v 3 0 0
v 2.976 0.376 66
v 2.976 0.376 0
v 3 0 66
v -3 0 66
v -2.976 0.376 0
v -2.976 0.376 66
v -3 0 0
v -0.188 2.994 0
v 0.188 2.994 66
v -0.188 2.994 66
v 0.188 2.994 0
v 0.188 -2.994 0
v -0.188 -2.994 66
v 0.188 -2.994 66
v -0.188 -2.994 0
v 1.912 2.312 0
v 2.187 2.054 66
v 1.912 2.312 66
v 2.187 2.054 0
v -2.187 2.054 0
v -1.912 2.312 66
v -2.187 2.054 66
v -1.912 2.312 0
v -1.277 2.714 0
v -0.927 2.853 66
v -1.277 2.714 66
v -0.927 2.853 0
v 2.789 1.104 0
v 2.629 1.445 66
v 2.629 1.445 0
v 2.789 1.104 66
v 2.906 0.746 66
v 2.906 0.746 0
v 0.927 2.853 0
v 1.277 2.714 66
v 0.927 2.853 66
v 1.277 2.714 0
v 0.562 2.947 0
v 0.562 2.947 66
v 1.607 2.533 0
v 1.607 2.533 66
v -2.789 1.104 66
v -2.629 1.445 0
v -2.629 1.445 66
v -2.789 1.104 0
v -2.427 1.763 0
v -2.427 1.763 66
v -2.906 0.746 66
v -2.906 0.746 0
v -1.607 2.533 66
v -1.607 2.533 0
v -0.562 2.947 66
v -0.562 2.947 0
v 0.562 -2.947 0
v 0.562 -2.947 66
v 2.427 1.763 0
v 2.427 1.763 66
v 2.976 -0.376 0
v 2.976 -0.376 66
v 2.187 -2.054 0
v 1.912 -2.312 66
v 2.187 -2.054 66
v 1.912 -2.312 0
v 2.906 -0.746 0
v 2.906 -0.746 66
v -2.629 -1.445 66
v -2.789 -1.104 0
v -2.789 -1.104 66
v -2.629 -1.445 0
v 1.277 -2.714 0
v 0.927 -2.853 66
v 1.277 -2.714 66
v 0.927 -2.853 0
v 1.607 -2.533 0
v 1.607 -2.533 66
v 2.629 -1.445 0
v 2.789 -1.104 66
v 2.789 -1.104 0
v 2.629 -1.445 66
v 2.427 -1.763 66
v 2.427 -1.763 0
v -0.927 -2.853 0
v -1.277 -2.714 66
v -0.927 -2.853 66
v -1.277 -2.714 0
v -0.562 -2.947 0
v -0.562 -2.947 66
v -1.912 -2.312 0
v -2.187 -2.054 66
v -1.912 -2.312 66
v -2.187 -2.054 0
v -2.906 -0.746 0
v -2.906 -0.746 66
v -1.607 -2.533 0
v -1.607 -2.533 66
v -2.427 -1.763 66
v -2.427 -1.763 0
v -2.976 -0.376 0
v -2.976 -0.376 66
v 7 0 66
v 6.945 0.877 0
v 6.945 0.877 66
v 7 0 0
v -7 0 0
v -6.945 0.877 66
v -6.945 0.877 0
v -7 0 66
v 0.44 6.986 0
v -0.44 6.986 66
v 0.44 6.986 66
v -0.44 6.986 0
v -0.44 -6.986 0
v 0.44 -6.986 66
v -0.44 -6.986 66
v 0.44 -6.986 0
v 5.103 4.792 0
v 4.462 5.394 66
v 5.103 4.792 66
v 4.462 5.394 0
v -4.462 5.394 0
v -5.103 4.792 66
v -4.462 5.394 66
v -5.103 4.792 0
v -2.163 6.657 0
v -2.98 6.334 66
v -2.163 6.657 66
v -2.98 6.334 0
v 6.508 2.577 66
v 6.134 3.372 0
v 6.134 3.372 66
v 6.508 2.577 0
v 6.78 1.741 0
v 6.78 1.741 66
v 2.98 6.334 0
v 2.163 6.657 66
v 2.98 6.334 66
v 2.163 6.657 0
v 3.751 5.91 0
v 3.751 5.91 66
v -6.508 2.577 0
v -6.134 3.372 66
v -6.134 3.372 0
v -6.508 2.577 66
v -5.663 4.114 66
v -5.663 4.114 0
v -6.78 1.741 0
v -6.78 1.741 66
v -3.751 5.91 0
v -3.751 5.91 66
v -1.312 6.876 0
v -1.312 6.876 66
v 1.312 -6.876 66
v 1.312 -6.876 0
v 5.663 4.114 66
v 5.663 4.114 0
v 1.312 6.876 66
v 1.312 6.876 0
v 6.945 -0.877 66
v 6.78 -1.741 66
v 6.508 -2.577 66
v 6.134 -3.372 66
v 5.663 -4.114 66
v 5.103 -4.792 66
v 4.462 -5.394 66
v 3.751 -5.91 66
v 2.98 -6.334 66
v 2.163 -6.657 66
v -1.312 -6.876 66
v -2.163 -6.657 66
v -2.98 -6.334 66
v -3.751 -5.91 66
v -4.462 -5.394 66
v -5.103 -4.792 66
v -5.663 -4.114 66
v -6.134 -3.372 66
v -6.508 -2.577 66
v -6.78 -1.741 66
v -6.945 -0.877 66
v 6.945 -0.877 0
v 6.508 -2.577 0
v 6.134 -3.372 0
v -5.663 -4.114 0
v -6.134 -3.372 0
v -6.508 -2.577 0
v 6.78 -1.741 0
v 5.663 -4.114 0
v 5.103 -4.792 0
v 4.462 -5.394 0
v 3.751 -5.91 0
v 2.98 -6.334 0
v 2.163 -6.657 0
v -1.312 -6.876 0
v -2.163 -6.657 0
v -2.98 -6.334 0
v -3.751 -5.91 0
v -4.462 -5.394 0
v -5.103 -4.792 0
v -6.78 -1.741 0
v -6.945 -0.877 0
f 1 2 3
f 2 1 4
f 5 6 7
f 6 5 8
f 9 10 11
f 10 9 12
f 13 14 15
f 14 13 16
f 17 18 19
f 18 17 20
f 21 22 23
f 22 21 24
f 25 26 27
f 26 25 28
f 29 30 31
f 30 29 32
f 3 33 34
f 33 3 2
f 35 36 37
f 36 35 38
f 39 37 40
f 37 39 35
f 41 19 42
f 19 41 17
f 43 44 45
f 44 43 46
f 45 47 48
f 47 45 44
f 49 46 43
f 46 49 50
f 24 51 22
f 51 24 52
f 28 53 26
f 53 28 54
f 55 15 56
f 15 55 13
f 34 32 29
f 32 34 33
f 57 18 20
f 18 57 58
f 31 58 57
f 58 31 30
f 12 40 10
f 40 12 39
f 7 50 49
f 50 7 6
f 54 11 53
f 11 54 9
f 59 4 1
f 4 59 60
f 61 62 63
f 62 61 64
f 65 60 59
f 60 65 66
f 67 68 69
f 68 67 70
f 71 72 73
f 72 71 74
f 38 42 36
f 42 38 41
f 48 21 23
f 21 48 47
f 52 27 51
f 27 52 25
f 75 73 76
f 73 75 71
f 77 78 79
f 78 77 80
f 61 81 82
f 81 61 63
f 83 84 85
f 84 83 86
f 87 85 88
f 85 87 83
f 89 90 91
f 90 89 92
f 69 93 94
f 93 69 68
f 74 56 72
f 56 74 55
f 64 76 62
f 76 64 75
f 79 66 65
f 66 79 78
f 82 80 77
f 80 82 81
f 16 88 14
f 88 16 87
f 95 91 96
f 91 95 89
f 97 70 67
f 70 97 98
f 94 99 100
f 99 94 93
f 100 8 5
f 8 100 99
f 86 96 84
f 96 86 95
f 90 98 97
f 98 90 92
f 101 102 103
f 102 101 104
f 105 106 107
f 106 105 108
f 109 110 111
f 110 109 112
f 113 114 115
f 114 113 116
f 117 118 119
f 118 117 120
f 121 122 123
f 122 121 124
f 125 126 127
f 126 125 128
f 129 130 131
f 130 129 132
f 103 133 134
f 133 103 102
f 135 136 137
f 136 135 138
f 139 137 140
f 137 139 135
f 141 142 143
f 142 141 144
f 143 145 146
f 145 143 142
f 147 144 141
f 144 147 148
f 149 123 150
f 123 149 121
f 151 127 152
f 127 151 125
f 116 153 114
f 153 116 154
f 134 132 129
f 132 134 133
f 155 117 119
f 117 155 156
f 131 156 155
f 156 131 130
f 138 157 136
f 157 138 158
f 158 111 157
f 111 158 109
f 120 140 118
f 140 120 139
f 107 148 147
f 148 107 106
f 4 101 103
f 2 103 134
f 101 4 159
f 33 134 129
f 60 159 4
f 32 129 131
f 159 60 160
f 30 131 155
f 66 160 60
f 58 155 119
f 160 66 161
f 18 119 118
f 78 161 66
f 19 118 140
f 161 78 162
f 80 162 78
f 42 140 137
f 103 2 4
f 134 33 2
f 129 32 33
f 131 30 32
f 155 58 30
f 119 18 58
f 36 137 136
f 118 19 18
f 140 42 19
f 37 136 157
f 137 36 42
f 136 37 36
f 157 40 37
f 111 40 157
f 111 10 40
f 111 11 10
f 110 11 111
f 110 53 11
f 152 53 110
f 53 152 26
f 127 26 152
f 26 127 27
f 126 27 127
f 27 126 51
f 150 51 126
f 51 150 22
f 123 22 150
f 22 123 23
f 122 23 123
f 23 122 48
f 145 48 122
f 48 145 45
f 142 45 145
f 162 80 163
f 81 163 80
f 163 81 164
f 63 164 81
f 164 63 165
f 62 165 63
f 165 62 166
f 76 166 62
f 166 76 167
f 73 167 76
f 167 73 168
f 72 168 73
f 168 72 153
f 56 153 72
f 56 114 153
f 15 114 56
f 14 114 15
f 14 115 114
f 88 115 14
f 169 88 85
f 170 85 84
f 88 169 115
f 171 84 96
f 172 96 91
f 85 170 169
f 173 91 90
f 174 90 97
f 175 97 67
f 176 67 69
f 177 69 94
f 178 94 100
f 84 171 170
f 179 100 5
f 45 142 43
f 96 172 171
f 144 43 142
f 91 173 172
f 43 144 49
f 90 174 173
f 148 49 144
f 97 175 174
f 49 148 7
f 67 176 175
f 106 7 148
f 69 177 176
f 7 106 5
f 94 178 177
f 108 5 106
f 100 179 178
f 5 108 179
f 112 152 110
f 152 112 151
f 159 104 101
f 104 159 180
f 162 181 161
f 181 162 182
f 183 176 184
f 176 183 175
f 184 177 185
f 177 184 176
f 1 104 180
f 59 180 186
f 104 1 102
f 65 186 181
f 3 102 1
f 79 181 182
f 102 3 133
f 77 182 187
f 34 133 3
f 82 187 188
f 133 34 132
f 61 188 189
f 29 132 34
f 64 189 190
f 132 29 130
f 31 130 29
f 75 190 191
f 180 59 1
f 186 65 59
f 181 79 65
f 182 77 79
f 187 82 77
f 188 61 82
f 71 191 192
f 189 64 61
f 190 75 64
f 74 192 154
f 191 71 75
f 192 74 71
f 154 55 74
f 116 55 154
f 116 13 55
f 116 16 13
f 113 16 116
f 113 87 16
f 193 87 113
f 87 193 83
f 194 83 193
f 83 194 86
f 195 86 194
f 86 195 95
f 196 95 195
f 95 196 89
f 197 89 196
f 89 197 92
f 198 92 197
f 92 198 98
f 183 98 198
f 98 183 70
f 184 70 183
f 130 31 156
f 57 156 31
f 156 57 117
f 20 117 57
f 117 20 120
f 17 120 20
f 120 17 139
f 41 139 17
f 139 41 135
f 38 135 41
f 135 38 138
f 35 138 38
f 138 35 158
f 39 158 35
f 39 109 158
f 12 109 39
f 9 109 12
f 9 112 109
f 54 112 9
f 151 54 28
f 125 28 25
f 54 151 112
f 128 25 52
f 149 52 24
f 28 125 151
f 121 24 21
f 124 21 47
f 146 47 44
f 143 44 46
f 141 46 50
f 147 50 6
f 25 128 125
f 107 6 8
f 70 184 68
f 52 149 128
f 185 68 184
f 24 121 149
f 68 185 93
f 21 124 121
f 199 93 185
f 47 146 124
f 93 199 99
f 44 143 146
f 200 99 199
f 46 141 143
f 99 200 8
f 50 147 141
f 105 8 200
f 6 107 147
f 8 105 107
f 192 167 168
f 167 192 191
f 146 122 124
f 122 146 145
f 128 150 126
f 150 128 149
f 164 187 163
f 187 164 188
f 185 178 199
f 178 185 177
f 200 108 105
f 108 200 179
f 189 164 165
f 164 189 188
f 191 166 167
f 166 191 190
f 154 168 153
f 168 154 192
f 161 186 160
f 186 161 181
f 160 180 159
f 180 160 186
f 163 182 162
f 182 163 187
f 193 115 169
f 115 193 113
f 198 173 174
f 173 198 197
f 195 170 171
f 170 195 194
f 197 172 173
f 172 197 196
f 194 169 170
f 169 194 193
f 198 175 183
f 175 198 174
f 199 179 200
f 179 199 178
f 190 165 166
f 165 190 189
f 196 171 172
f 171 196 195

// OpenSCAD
$fn = 50;


difference() {
	union() {
		*color(alpha = 1.0000000000, c = "gray") {
			translate(v = [0, 7, 0]) {
				linear_extrude(height = 1) {
					text(font = "Arial:style=Bold", halign = "center", size = 4.5000000000, text = "COMMENT plate main", valign = "center");
				}
			}
		}
		cylinder(h = 66, r = 7.0000000000);
	}
	union() {
		*color(alpha = 1.0000000000, c = "gray") {
			translate(v = [0, 7, 0]) {
				linear_extrude(height = 1) {
					text(font = "Arial:style=Bold", halign = "center", size = 4.5000000000, text = "COMMENT holes main", valign = "center");
				}
			}
		}
		translate(v = [0, 0, -100]) {
			cylinder(h = 200, r = 3.0000000000);
		}
		translate(v = [0, 0, -100]) {
			cylinder(h = 200, r = 1.5000000000);
		}
	}
}
